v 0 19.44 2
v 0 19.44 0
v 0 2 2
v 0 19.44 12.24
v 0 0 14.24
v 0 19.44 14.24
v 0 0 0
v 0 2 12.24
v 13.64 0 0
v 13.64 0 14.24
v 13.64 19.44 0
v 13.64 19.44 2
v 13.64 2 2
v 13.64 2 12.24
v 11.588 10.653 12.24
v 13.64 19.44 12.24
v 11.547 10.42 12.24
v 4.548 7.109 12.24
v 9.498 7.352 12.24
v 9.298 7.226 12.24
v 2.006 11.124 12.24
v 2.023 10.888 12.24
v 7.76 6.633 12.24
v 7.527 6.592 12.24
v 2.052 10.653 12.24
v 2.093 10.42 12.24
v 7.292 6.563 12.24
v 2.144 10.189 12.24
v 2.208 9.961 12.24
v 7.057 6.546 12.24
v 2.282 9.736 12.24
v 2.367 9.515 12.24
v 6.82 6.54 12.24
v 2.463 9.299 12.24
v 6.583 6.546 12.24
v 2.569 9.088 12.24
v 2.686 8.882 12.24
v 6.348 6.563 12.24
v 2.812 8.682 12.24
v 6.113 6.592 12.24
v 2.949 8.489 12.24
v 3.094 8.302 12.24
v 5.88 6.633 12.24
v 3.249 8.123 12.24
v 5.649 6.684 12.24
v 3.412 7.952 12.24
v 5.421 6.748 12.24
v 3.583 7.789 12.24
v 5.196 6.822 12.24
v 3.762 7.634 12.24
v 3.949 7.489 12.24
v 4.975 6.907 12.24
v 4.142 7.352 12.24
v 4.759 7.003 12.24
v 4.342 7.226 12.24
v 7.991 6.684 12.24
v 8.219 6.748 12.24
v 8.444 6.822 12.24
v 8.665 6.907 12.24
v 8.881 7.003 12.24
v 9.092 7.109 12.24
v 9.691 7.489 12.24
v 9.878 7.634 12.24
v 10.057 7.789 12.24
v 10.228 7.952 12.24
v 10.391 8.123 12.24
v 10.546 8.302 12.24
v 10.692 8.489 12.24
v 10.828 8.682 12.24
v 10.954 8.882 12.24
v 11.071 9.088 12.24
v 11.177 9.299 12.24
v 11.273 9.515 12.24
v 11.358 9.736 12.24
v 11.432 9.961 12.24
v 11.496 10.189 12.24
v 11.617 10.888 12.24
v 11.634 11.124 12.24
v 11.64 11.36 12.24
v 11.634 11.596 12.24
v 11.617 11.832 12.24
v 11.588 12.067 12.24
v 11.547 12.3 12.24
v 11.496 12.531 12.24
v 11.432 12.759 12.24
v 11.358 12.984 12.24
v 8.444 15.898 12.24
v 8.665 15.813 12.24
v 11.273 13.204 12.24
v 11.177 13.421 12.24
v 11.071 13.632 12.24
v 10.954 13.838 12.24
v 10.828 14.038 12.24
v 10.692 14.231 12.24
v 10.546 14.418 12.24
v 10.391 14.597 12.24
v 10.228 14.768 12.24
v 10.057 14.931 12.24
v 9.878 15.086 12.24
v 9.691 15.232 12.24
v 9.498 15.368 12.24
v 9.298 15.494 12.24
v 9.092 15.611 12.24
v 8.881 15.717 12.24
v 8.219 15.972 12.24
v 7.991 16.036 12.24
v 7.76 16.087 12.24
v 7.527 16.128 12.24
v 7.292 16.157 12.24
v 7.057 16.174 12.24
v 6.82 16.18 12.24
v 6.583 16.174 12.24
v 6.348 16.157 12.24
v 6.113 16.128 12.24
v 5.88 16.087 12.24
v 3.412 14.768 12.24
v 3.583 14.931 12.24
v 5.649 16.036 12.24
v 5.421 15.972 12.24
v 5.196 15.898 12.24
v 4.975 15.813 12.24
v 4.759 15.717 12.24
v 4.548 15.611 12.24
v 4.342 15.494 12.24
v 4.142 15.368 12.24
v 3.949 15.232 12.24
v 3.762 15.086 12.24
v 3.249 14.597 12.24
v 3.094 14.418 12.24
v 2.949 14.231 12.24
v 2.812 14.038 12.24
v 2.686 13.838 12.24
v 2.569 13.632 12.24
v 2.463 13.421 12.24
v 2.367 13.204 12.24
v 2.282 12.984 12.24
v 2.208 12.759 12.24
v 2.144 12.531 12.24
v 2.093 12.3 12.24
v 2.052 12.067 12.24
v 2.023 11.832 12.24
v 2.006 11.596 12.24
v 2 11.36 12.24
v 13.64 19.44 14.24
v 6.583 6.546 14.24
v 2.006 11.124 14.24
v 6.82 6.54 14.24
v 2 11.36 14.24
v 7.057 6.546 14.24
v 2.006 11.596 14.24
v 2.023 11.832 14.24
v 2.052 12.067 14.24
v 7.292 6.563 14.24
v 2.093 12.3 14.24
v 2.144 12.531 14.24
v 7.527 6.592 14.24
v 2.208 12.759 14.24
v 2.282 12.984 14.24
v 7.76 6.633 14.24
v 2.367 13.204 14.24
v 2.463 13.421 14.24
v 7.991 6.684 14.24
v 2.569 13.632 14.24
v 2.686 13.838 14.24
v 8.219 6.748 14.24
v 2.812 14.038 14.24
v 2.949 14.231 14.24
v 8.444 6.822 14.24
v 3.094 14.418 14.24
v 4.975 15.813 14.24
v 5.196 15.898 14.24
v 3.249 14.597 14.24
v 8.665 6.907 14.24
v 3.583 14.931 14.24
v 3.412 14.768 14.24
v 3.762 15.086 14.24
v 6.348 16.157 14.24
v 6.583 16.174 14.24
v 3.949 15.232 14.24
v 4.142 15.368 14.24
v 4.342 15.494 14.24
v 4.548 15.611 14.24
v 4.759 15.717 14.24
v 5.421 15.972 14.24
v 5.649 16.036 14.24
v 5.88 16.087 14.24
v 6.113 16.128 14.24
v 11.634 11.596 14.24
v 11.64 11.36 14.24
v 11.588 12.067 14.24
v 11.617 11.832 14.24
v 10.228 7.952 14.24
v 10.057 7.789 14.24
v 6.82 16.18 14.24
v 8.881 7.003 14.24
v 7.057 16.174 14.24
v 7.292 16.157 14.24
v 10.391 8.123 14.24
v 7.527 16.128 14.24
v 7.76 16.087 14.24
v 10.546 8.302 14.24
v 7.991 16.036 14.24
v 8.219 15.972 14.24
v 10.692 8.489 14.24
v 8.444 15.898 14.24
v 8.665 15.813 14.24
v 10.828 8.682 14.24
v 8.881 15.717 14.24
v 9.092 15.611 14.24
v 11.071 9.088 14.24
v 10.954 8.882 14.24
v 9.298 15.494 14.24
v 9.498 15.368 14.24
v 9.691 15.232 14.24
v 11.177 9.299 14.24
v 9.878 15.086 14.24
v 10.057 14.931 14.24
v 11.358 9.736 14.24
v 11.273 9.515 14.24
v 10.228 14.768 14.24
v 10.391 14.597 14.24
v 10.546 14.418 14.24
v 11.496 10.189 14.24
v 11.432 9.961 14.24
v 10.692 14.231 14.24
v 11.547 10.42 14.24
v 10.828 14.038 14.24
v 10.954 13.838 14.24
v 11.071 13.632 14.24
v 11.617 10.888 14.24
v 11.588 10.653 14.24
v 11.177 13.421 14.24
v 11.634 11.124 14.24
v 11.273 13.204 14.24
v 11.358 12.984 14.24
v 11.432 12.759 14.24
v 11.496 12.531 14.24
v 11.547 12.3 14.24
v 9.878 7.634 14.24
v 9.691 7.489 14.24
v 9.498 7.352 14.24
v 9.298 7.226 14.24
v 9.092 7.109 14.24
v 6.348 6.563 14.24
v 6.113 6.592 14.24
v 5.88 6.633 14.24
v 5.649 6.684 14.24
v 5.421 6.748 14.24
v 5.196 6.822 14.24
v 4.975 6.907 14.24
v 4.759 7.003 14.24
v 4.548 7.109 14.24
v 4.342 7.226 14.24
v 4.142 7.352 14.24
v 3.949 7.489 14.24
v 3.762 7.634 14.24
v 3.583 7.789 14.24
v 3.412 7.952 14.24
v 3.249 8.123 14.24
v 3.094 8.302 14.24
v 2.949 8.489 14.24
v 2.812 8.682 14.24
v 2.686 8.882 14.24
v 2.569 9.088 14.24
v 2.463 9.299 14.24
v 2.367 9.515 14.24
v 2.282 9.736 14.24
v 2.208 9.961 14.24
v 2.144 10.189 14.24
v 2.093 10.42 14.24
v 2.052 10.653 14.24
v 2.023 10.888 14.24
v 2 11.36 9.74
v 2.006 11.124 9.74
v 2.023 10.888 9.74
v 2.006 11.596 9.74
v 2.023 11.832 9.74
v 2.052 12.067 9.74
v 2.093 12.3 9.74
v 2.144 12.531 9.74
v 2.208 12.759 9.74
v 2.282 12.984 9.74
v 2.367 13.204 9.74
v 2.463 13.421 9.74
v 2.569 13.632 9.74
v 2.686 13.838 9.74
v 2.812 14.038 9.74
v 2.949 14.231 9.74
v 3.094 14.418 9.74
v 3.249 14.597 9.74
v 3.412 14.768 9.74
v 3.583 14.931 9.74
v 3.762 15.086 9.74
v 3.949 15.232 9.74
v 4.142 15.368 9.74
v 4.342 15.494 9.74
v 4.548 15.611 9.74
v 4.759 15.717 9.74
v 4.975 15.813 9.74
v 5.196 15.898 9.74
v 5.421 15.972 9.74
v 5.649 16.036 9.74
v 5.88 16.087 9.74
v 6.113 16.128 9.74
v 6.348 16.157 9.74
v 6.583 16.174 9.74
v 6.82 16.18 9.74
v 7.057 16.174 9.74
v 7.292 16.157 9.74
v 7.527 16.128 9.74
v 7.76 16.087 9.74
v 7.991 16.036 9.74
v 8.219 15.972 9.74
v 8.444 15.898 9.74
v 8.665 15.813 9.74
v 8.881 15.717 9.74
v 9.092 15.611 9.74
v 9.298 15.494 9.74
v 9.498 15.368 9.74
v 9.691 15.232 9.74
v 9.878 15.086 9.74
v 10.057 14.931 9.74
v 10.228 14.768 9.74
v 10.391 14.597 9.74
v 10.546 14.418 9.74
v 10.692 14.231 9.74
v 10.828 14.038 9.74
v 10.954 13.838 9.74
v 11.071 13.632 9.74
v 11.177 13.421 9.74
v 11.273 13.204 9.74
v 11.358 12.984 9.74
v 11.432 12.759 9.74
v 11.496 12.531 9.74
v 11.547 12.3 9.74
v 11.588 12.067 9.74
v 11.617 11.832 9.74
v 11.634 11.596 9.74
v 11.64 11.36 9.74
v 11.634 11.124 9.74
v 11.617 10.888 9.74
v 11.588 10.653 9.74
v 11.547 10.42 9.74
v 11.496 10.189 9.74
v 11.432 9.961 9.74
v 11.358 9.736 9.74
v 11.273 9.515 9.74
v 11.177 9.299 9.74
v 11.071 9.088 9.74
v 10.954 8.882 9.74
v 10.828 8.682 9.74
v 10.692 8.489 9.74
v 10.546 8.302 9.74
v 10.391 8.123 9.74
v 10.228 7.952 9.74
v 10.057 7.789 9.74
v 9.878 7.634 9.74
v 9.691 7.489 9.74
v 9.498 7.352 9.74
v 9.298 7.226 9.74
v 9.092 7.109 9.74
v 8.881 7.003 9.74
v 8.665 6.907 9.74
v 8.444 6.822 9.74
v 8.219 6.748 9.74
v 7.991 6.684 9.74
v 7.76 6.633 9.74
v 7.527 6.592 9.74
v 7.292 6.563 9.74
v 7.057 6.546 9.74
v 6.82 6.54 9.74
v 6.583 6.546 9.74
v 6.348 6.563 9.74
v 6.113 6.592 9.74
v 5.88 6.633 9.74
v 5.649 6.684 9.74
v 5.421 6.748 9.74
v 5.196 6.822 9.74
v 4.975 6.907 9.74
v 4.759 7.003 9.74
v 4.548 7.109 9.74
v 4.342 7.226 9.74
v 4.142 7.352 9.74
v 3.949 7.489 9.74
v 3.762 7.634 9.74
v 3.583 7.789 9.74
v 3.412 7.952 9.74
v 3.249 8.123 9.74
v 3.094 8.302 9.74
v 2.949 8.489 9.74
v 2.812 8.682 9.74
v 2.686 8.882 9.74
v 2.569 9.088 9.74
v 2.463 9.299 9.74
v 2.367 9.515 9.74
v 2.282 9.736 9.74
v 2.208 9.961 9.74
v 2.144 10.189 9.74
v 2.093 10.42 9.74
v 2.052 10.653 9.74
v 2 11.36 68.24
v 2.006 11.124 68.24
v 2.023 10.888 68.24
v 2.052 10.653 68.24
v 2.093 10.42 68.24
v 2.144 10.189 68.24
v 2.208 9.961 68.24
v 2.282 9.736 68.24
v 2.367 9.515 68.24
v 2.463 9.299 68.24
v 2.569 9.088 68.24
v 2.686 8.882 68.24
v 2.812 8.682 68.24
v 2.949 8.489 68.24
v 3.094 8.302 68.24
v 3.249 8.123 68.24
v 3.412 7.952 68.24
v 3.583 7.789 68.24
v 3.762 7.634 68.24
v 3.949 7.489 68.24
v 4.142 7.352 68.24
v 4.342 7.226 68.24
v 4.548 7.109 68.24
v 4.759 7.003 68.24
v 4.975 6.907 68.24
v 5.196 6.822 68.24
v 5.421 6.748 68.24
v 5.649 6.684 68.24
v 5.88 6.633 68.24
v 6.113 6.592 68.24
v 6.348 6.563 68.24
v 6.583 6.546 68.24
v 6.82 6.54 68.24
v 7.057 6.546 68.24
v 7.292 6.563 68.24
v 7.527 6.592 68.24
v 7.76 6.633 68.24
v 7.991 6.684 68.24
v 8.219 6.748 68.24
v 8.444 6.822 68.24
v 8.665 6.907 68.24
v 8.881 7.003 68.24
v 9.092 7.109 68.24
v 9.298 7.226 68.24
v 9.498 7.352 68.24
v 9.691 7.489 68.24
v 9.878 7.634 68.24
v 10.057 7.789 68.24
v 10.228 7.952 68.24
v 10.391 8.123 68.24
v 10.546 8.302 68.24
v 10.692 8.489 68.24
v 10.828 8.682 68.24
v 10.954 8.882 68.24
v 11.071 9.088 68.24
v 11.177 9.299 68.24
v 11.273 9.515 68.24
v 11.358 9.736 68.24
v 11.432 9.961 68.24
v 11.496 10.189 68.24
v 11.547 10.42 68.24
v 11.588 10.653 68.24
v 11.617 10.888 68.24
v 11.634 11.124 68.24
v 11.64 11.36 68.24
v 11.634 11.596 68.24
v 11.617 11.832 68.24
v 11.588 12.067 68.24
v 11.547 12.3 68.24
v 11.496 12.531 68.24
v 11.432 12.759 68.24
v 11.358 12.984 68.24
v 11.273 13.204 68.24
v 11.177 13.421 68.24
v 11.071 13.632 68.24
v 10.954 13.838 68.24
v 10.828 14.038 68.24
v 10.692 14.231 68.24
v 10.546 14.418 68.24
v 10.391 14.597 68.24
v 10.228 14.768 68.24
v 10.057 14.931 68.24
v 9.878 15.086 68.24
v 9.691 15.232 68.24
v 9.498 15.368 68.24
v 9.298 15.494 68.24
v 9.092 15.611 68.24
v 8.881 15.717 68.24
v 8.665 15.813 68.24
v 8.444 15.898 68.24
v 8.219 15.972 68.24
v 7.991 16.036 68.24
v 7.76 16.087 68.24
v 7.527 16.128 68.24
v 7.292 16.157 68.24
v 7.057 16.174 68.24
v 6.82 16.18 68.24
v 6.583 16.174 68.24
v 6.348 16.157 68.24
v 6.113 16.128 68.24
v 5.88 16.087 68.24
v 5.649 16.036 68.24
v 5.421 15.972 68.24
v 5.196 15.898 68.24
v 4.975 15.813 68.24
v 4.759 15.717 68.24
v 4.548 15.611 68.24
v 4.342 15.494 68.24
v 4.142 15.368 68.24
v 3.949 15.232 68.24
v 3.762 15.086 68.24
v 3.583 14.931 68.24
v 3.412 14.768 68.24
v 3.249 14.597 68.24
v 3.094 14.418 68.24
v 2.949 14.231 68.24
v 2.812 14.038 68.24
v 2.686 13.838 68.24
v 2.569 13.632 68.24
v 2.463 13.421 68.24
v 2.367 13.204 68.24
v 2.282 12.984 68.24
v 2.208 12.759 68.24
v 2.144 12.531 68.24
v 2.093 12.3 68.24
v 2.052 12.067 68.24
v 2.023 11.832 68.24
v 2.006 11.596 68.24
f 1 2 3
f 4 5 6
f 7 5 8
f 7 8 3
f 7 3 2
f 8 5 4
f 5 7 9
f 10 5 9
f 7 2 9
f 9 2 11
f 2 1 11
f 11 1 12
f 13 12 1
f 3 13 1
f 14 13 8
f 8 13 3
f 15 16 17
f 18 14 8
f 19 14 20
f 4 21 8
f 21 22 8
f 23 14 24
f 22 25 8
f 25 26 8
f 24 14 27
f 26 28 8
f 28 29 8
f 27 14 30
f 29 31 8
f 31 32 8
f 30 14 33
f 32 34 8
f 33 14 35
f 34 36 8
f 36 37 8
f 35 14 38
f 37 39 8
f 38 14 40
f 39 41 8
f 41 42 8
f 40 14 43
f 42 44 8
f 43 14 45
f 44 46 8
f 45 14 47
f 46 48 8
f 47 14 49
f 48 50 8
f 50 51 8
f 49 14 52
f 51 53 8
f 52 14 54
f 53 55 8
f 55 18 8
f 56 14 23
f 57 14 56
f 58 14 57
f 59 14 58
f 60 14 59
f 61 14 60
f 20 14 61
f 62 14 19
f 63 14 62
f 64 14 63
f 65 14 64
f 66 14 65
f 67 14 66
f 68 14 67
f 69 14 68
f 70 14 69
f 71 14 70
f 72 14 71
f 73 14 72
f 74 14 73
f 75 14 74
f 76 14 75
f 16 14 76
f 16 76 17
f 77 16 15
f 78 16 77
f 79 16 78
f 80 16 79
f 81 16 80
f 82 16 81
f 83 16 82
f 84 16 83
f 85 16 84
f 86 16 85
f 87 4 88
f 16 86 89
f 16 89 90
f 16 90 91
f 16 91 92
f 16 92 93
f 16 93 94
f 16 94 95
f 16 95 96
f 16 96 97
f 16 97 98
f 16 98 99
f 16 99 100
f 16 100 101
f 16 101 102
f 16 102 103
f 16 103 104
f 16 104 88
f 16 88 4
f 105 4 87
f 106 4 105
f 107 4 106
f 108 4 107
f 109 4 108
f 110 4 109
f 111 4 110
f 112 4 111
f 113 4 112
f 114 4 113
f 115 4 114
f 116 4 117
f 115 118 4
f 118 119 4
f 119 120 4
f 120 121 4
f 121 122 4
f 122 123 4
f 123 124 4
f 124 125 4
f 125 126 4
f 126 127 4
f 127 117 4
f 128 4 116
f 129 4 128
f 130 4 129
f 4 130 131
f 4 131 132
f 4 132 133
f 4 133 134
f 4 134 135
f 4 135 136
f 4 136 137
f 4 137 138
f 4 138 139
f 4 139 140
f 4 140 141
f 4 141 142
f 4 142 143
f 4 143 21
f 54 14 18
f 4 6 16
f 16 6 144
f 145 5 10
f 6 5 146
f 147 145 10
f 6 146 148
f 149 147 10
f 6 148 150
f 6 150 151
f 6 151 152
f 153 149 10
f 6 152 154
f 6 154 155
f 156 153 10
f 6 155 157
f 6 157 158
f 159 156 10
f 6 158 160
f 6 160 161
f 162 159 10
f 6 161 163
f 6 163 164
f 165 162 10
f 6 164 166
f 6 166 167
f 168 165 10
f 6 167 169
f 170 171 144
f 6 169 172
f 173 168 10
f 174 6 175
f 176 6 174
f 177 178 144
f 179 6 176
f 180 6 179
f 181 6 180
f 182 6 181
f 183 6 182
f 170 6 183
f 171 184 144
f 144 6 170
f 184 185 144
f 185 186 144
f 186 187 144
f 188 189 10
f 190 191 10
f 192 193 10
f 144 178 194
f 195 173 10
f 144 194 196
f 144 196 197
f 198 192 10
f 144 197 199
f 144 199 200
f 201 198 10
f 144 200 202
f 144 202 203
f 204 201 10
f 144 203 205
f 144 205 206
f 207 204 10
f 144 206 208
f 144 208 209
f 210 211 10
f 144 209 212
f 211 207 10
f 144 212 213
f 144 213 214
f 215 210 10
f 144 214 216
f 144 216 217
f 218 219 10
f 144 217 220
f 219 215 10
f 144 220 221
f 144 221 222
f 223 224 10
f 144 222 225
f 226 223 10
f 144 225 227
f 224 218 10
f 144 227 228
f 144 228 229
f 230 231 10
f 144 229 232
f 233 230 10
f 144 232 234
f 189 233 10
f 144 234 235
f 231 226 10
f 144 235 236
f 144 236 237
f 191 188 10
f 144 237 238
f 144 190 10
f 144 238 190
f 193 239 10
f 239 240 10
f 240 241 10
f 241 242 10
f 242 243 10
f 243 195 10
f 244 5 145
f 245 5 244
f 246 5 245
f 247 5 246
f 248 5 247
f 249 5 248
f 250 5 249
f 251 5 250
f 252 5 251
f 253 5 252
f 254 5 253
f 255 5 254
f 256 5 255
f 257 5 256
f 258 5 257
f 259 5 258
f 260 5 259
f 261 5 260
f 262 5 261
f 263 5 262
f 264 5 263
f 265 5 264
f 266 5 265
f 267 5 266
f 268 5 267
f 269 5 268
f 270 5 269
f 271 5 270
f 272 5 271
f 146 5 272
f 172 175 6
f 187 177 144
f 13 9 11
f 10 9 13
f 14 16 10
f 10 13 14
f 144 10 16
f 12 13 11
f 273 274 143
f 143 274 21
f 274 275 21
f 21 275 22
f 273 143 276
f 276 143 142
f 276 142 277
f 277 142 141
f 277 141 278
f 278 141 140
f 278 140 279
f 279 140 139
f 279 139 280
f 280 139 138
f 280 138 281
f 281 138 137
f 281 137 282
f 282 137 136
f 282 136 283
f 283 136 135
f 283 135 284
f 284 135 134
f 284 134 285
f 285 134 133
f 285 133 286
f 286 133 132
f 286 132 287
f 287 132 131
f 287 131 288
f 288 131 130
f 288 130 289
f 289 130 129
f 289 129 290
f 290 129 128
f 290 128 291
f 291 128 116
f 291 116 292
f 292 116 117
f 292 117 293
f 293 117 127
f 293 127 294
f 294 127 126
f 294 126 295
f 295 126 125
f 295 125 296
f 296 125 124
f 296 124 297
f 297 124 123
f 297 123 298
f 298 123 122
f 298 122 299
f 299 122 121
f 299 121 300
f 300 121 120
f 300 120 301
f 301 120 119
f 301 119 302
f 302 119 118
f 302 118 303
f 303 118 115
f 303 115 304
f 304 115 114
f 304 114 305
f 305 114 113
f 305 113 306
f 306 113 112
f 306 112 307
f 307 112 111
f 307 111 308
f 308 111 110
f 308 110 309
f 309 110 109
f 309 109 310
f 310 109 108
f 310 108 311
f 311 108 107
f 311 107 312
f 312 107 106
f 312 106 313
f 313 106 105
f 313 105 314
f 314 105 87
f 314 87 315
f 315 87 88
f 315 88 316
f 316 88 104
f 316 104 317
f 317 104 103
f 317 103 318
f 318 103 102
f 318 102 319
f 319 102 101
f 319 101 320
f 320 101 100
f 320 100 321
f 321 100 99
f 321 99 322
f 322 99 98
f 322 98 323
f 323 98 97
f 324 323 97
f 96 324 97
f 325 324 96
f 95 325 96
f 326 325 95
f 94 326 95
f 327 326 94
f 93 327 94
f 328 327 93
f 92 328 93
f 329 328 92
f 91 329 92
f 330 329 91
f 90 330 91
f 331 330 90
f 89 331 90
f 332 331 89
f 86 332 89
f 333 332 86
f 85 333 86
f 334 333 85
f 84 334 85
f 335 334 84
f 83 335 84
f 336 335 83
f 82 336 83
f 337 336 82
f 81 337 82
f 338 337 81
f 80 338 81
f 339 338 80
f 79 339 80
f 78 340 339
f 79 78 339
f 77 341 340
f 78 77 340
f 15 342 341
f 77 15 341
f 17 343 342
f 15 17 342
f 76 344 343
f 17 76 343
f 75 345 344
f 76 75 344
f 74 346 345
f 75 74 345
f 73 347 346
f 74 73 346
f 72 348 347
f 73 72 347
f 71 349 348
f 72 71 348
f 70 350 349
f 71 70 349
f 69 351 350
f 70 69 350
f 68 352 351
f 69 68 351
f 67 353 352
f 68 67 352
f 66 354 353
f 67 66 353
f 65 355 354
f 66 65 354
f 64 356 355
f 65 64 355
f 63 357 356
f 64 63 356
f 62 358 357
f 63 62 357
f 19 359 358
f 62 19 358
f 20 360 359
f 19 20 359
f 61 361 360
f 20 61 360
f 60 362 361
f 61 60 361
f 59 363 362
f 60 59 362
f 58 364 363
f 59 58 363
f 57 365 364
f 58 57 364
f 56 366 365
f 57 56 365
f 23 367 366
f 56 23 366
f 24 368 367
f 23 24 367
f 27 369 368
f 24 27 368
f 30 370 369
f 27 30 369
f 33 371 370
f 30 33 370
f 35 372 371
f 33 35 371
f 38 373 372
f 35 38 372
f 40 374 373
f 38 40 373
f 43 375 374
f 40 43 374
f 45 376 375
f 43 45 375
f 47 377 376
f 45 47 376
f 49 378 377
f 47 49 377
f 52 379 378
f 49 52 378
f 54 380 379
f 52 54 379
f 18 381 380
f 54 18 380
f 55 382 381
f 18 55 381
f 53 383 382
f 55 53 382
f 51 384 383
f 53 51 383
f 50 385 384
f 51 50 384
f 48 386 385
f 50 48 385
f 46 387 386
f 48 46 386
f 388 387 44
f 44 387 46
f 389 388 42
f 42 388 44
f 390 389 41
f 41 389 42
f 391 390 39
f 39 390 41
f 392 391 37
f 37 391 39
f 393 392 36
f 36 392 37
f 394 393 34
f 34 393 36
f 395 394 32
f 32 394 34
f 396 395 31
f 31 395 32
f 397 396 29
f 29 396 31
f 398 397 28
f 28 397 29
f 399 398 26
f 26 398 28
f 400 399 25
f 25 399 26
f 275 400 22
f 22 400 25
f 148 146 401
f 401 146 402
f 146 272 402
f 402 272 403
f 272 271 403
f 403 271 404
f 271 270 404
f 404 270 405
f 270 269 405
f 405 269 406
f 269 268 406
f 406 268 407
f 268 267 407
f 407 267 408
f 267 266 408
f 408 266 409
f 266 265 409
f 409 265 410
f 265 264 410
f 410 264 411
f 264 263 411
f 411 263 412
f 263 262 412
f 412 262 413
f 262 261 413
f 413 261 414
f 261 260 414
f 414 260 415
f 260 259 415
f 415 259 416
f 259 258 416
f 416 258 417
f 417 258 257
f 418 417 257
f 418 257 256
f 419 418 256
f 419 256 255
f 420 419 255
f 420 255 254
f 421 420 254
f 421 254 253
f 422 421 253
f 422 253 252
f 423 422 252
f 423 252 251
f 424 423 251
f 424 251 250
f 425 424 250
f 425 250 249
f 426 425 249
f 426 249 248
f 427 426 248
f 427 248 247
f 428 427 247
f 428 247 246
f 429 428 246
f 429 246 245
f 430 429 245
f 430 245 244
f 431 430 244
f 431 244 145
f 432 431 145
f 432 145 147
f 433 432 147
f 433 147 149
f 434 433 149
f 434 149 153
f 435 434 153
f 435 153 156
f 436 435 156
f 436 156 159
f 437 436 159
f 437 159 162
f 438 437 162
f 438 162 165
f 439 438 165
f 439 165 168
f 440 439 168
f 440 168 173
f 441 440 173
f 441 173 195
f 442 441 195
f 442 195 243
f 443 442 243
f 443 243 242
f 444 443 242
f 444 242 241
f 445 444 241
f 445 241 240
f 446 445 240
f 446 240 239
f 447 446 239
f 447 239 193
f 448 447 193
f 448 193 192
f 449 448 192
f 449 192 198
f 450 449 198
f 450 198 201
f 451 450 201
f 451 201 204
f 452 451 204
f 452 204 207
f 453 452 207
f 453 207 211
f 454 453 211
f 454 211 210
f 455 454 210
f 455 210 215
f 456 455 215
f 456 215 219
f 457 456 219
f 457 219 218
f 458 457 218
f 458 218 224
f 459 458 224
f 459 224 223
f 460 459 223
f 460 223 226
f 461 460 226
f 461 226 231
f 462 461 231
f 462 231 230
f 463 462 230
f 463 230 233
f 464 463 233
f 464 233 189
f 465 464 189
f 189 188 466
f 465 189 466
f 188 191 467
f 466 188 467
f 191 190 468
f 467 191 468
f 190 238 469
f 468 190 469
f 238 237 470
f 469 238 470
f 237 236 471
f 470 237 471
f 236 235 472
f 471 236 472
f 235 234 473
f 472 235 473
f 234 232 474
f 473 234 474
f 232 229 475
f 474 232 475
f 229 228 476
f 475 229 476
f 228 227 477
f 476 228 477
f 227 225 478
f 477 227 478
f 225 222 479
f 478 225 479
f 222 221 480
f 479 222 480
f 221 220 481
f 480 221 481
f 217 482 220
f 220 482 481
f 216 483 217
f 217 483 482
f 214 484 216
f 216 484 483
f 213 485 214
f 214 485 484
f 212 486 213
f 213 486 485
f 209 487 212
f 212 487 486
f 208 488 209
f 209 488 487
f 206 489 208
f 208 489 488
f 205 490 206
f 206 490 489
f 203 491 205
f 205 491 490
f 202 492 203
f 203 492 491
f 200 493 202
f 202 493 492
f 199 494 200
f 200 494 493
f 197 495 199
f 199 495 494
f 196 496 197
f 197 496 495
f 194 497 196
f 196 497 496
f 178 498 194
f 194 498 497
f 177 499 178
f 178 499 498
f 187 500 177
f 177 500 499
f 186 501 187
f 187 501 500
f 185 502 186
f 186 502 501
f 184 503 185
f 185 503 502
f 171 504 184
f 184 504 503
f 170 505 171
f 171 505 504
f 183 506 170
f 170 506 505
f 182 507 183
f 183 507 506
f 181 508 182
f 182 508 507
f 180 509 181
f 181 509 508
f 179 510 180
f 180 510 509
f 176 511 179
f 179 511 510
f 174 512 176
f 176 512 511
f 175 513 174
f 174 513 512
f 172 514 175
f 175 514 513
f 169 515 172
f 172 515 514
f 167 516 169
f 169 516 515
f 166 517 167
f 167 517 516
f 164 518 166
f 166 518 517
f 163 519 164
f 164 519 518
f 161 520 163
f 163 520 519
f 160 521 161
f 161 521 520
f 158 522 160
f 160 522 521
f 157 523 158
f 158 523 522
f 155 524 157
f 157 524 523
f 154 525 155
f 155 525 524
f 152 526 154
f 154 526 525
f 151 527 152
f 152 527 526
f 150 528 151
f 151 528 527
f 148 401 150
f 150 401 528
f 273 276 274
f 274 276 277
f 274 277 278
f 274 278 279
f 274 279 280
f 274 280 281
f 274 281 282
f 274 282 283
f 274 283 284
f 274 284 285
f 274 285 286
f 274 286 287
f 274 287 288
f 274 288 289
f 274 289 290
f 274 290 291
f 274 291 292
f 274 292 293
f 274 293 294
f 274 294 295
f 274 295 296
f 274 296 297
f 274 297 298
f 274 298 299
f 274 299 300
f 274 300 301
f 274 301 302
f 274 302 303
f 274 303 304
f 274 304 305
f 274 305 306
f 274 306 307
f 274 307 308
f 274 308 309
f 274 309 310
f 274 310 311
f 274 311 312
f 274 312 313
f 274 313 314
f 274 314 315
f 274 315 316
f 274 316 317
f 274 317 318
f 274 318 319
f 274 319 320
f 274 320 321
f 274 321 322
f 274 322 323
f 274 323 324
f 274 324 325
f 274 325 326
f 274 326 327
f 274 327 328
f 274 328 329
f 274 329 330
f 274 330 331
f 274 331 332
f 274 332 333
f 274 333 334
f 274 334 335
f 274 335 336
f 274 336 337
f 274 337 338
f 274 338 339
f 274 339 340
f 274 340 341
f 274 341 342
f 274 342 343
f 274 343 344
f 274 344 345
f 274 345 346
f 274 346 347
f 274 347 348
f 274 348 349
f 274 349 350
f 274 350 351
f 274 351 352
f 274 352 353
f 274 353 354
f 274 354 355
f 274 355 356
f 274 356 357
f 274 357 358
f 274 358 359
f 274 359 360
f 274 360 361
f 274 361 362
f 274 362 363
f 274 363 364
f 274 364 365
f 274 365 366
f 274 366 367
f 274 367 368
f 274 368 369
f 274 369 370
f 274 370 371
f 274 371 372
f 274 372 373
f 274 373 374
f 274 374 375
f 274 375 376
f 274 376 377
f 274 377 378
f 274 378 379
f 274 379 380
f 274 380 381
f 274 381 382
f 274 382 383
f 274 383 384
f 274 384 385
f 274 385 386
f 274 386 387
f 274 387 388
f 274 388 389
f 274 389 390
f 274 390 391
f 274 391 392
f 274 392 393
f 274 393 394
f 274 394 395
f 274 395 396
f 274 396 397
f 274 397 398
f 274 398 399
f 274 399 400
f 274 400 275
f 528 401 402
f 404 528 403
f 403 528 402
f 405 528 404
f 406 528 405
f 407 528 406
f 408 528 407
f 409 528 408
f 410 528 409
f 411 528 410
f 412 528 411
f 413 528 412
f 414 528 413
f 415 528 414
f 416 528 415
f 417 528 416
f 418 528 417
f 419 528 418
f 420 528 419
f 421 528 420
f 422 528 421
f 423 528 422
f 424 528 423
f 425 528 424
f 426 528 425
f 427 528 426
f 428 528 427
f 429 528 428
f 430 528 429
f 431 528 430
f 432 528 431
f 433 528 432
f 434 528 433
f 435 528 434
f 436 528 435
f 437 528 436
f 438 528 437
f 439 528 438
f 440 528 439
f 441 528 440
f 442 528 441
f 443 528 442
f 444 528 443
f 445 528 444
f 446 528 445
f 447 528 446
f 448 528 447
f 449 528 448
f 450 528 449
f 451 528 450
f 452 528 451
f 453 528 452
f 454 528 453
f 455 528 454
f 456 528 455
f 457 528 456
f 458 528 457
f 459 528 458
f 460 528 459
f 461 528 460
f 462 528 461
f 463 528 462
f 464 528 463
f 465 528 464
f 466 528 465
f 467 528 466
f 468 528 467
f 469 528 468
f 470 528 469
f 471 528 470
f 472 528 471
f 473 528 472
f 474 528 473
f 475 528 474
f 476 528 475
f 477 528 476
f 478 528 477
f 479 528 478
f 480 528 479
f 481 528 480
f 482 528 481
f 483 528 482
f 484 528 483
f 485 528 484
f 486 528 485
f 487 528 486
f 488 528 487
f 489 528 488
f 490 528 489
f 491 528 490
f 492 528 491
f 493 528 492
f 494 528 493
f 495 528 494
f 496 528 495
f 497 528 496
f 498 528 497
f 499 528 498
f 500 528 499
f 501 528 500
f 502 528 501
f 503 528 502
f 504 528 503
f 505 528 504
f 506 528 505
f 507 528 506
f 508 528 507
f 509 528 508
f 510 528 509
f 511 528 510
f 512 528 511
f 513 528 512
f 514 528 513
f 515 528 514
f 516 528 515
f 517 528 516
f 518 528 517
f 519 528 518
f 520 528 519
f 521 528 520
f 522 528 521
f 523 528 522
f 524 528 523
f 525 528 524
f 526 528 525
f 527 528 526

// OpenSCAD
d = 7.64;
dWPadding = d + 2.6;
hbPadding = 3.90;
mPadding = 2;
hbRadius = 4.82;
extenderHeight = 58;
//extenderHeight = 10;
differenceHelper = .5;


$fn = 128;

translate([hbRadius+2, hbRadius+hbPadding+2.64, dWPadding+(mPadding*2)-(mPadding+differenceHelper+2)]){
	cylinder(r=hbRadius, h=extenderHeight+differenceHelper);
}

difference(){
	cube([((hbRadius*2)+4), (hbPadding+(hbRadius*2)+hbPadding+mPadding), dWPadding+(mPadding*2)]);
	translate([-.5,2,2]){
		cube([((hbRadius*2)+4)+1, (hbPadding+(hbRadius*2)+hbPadding+mPadding), dWPadding]);
	}
}
